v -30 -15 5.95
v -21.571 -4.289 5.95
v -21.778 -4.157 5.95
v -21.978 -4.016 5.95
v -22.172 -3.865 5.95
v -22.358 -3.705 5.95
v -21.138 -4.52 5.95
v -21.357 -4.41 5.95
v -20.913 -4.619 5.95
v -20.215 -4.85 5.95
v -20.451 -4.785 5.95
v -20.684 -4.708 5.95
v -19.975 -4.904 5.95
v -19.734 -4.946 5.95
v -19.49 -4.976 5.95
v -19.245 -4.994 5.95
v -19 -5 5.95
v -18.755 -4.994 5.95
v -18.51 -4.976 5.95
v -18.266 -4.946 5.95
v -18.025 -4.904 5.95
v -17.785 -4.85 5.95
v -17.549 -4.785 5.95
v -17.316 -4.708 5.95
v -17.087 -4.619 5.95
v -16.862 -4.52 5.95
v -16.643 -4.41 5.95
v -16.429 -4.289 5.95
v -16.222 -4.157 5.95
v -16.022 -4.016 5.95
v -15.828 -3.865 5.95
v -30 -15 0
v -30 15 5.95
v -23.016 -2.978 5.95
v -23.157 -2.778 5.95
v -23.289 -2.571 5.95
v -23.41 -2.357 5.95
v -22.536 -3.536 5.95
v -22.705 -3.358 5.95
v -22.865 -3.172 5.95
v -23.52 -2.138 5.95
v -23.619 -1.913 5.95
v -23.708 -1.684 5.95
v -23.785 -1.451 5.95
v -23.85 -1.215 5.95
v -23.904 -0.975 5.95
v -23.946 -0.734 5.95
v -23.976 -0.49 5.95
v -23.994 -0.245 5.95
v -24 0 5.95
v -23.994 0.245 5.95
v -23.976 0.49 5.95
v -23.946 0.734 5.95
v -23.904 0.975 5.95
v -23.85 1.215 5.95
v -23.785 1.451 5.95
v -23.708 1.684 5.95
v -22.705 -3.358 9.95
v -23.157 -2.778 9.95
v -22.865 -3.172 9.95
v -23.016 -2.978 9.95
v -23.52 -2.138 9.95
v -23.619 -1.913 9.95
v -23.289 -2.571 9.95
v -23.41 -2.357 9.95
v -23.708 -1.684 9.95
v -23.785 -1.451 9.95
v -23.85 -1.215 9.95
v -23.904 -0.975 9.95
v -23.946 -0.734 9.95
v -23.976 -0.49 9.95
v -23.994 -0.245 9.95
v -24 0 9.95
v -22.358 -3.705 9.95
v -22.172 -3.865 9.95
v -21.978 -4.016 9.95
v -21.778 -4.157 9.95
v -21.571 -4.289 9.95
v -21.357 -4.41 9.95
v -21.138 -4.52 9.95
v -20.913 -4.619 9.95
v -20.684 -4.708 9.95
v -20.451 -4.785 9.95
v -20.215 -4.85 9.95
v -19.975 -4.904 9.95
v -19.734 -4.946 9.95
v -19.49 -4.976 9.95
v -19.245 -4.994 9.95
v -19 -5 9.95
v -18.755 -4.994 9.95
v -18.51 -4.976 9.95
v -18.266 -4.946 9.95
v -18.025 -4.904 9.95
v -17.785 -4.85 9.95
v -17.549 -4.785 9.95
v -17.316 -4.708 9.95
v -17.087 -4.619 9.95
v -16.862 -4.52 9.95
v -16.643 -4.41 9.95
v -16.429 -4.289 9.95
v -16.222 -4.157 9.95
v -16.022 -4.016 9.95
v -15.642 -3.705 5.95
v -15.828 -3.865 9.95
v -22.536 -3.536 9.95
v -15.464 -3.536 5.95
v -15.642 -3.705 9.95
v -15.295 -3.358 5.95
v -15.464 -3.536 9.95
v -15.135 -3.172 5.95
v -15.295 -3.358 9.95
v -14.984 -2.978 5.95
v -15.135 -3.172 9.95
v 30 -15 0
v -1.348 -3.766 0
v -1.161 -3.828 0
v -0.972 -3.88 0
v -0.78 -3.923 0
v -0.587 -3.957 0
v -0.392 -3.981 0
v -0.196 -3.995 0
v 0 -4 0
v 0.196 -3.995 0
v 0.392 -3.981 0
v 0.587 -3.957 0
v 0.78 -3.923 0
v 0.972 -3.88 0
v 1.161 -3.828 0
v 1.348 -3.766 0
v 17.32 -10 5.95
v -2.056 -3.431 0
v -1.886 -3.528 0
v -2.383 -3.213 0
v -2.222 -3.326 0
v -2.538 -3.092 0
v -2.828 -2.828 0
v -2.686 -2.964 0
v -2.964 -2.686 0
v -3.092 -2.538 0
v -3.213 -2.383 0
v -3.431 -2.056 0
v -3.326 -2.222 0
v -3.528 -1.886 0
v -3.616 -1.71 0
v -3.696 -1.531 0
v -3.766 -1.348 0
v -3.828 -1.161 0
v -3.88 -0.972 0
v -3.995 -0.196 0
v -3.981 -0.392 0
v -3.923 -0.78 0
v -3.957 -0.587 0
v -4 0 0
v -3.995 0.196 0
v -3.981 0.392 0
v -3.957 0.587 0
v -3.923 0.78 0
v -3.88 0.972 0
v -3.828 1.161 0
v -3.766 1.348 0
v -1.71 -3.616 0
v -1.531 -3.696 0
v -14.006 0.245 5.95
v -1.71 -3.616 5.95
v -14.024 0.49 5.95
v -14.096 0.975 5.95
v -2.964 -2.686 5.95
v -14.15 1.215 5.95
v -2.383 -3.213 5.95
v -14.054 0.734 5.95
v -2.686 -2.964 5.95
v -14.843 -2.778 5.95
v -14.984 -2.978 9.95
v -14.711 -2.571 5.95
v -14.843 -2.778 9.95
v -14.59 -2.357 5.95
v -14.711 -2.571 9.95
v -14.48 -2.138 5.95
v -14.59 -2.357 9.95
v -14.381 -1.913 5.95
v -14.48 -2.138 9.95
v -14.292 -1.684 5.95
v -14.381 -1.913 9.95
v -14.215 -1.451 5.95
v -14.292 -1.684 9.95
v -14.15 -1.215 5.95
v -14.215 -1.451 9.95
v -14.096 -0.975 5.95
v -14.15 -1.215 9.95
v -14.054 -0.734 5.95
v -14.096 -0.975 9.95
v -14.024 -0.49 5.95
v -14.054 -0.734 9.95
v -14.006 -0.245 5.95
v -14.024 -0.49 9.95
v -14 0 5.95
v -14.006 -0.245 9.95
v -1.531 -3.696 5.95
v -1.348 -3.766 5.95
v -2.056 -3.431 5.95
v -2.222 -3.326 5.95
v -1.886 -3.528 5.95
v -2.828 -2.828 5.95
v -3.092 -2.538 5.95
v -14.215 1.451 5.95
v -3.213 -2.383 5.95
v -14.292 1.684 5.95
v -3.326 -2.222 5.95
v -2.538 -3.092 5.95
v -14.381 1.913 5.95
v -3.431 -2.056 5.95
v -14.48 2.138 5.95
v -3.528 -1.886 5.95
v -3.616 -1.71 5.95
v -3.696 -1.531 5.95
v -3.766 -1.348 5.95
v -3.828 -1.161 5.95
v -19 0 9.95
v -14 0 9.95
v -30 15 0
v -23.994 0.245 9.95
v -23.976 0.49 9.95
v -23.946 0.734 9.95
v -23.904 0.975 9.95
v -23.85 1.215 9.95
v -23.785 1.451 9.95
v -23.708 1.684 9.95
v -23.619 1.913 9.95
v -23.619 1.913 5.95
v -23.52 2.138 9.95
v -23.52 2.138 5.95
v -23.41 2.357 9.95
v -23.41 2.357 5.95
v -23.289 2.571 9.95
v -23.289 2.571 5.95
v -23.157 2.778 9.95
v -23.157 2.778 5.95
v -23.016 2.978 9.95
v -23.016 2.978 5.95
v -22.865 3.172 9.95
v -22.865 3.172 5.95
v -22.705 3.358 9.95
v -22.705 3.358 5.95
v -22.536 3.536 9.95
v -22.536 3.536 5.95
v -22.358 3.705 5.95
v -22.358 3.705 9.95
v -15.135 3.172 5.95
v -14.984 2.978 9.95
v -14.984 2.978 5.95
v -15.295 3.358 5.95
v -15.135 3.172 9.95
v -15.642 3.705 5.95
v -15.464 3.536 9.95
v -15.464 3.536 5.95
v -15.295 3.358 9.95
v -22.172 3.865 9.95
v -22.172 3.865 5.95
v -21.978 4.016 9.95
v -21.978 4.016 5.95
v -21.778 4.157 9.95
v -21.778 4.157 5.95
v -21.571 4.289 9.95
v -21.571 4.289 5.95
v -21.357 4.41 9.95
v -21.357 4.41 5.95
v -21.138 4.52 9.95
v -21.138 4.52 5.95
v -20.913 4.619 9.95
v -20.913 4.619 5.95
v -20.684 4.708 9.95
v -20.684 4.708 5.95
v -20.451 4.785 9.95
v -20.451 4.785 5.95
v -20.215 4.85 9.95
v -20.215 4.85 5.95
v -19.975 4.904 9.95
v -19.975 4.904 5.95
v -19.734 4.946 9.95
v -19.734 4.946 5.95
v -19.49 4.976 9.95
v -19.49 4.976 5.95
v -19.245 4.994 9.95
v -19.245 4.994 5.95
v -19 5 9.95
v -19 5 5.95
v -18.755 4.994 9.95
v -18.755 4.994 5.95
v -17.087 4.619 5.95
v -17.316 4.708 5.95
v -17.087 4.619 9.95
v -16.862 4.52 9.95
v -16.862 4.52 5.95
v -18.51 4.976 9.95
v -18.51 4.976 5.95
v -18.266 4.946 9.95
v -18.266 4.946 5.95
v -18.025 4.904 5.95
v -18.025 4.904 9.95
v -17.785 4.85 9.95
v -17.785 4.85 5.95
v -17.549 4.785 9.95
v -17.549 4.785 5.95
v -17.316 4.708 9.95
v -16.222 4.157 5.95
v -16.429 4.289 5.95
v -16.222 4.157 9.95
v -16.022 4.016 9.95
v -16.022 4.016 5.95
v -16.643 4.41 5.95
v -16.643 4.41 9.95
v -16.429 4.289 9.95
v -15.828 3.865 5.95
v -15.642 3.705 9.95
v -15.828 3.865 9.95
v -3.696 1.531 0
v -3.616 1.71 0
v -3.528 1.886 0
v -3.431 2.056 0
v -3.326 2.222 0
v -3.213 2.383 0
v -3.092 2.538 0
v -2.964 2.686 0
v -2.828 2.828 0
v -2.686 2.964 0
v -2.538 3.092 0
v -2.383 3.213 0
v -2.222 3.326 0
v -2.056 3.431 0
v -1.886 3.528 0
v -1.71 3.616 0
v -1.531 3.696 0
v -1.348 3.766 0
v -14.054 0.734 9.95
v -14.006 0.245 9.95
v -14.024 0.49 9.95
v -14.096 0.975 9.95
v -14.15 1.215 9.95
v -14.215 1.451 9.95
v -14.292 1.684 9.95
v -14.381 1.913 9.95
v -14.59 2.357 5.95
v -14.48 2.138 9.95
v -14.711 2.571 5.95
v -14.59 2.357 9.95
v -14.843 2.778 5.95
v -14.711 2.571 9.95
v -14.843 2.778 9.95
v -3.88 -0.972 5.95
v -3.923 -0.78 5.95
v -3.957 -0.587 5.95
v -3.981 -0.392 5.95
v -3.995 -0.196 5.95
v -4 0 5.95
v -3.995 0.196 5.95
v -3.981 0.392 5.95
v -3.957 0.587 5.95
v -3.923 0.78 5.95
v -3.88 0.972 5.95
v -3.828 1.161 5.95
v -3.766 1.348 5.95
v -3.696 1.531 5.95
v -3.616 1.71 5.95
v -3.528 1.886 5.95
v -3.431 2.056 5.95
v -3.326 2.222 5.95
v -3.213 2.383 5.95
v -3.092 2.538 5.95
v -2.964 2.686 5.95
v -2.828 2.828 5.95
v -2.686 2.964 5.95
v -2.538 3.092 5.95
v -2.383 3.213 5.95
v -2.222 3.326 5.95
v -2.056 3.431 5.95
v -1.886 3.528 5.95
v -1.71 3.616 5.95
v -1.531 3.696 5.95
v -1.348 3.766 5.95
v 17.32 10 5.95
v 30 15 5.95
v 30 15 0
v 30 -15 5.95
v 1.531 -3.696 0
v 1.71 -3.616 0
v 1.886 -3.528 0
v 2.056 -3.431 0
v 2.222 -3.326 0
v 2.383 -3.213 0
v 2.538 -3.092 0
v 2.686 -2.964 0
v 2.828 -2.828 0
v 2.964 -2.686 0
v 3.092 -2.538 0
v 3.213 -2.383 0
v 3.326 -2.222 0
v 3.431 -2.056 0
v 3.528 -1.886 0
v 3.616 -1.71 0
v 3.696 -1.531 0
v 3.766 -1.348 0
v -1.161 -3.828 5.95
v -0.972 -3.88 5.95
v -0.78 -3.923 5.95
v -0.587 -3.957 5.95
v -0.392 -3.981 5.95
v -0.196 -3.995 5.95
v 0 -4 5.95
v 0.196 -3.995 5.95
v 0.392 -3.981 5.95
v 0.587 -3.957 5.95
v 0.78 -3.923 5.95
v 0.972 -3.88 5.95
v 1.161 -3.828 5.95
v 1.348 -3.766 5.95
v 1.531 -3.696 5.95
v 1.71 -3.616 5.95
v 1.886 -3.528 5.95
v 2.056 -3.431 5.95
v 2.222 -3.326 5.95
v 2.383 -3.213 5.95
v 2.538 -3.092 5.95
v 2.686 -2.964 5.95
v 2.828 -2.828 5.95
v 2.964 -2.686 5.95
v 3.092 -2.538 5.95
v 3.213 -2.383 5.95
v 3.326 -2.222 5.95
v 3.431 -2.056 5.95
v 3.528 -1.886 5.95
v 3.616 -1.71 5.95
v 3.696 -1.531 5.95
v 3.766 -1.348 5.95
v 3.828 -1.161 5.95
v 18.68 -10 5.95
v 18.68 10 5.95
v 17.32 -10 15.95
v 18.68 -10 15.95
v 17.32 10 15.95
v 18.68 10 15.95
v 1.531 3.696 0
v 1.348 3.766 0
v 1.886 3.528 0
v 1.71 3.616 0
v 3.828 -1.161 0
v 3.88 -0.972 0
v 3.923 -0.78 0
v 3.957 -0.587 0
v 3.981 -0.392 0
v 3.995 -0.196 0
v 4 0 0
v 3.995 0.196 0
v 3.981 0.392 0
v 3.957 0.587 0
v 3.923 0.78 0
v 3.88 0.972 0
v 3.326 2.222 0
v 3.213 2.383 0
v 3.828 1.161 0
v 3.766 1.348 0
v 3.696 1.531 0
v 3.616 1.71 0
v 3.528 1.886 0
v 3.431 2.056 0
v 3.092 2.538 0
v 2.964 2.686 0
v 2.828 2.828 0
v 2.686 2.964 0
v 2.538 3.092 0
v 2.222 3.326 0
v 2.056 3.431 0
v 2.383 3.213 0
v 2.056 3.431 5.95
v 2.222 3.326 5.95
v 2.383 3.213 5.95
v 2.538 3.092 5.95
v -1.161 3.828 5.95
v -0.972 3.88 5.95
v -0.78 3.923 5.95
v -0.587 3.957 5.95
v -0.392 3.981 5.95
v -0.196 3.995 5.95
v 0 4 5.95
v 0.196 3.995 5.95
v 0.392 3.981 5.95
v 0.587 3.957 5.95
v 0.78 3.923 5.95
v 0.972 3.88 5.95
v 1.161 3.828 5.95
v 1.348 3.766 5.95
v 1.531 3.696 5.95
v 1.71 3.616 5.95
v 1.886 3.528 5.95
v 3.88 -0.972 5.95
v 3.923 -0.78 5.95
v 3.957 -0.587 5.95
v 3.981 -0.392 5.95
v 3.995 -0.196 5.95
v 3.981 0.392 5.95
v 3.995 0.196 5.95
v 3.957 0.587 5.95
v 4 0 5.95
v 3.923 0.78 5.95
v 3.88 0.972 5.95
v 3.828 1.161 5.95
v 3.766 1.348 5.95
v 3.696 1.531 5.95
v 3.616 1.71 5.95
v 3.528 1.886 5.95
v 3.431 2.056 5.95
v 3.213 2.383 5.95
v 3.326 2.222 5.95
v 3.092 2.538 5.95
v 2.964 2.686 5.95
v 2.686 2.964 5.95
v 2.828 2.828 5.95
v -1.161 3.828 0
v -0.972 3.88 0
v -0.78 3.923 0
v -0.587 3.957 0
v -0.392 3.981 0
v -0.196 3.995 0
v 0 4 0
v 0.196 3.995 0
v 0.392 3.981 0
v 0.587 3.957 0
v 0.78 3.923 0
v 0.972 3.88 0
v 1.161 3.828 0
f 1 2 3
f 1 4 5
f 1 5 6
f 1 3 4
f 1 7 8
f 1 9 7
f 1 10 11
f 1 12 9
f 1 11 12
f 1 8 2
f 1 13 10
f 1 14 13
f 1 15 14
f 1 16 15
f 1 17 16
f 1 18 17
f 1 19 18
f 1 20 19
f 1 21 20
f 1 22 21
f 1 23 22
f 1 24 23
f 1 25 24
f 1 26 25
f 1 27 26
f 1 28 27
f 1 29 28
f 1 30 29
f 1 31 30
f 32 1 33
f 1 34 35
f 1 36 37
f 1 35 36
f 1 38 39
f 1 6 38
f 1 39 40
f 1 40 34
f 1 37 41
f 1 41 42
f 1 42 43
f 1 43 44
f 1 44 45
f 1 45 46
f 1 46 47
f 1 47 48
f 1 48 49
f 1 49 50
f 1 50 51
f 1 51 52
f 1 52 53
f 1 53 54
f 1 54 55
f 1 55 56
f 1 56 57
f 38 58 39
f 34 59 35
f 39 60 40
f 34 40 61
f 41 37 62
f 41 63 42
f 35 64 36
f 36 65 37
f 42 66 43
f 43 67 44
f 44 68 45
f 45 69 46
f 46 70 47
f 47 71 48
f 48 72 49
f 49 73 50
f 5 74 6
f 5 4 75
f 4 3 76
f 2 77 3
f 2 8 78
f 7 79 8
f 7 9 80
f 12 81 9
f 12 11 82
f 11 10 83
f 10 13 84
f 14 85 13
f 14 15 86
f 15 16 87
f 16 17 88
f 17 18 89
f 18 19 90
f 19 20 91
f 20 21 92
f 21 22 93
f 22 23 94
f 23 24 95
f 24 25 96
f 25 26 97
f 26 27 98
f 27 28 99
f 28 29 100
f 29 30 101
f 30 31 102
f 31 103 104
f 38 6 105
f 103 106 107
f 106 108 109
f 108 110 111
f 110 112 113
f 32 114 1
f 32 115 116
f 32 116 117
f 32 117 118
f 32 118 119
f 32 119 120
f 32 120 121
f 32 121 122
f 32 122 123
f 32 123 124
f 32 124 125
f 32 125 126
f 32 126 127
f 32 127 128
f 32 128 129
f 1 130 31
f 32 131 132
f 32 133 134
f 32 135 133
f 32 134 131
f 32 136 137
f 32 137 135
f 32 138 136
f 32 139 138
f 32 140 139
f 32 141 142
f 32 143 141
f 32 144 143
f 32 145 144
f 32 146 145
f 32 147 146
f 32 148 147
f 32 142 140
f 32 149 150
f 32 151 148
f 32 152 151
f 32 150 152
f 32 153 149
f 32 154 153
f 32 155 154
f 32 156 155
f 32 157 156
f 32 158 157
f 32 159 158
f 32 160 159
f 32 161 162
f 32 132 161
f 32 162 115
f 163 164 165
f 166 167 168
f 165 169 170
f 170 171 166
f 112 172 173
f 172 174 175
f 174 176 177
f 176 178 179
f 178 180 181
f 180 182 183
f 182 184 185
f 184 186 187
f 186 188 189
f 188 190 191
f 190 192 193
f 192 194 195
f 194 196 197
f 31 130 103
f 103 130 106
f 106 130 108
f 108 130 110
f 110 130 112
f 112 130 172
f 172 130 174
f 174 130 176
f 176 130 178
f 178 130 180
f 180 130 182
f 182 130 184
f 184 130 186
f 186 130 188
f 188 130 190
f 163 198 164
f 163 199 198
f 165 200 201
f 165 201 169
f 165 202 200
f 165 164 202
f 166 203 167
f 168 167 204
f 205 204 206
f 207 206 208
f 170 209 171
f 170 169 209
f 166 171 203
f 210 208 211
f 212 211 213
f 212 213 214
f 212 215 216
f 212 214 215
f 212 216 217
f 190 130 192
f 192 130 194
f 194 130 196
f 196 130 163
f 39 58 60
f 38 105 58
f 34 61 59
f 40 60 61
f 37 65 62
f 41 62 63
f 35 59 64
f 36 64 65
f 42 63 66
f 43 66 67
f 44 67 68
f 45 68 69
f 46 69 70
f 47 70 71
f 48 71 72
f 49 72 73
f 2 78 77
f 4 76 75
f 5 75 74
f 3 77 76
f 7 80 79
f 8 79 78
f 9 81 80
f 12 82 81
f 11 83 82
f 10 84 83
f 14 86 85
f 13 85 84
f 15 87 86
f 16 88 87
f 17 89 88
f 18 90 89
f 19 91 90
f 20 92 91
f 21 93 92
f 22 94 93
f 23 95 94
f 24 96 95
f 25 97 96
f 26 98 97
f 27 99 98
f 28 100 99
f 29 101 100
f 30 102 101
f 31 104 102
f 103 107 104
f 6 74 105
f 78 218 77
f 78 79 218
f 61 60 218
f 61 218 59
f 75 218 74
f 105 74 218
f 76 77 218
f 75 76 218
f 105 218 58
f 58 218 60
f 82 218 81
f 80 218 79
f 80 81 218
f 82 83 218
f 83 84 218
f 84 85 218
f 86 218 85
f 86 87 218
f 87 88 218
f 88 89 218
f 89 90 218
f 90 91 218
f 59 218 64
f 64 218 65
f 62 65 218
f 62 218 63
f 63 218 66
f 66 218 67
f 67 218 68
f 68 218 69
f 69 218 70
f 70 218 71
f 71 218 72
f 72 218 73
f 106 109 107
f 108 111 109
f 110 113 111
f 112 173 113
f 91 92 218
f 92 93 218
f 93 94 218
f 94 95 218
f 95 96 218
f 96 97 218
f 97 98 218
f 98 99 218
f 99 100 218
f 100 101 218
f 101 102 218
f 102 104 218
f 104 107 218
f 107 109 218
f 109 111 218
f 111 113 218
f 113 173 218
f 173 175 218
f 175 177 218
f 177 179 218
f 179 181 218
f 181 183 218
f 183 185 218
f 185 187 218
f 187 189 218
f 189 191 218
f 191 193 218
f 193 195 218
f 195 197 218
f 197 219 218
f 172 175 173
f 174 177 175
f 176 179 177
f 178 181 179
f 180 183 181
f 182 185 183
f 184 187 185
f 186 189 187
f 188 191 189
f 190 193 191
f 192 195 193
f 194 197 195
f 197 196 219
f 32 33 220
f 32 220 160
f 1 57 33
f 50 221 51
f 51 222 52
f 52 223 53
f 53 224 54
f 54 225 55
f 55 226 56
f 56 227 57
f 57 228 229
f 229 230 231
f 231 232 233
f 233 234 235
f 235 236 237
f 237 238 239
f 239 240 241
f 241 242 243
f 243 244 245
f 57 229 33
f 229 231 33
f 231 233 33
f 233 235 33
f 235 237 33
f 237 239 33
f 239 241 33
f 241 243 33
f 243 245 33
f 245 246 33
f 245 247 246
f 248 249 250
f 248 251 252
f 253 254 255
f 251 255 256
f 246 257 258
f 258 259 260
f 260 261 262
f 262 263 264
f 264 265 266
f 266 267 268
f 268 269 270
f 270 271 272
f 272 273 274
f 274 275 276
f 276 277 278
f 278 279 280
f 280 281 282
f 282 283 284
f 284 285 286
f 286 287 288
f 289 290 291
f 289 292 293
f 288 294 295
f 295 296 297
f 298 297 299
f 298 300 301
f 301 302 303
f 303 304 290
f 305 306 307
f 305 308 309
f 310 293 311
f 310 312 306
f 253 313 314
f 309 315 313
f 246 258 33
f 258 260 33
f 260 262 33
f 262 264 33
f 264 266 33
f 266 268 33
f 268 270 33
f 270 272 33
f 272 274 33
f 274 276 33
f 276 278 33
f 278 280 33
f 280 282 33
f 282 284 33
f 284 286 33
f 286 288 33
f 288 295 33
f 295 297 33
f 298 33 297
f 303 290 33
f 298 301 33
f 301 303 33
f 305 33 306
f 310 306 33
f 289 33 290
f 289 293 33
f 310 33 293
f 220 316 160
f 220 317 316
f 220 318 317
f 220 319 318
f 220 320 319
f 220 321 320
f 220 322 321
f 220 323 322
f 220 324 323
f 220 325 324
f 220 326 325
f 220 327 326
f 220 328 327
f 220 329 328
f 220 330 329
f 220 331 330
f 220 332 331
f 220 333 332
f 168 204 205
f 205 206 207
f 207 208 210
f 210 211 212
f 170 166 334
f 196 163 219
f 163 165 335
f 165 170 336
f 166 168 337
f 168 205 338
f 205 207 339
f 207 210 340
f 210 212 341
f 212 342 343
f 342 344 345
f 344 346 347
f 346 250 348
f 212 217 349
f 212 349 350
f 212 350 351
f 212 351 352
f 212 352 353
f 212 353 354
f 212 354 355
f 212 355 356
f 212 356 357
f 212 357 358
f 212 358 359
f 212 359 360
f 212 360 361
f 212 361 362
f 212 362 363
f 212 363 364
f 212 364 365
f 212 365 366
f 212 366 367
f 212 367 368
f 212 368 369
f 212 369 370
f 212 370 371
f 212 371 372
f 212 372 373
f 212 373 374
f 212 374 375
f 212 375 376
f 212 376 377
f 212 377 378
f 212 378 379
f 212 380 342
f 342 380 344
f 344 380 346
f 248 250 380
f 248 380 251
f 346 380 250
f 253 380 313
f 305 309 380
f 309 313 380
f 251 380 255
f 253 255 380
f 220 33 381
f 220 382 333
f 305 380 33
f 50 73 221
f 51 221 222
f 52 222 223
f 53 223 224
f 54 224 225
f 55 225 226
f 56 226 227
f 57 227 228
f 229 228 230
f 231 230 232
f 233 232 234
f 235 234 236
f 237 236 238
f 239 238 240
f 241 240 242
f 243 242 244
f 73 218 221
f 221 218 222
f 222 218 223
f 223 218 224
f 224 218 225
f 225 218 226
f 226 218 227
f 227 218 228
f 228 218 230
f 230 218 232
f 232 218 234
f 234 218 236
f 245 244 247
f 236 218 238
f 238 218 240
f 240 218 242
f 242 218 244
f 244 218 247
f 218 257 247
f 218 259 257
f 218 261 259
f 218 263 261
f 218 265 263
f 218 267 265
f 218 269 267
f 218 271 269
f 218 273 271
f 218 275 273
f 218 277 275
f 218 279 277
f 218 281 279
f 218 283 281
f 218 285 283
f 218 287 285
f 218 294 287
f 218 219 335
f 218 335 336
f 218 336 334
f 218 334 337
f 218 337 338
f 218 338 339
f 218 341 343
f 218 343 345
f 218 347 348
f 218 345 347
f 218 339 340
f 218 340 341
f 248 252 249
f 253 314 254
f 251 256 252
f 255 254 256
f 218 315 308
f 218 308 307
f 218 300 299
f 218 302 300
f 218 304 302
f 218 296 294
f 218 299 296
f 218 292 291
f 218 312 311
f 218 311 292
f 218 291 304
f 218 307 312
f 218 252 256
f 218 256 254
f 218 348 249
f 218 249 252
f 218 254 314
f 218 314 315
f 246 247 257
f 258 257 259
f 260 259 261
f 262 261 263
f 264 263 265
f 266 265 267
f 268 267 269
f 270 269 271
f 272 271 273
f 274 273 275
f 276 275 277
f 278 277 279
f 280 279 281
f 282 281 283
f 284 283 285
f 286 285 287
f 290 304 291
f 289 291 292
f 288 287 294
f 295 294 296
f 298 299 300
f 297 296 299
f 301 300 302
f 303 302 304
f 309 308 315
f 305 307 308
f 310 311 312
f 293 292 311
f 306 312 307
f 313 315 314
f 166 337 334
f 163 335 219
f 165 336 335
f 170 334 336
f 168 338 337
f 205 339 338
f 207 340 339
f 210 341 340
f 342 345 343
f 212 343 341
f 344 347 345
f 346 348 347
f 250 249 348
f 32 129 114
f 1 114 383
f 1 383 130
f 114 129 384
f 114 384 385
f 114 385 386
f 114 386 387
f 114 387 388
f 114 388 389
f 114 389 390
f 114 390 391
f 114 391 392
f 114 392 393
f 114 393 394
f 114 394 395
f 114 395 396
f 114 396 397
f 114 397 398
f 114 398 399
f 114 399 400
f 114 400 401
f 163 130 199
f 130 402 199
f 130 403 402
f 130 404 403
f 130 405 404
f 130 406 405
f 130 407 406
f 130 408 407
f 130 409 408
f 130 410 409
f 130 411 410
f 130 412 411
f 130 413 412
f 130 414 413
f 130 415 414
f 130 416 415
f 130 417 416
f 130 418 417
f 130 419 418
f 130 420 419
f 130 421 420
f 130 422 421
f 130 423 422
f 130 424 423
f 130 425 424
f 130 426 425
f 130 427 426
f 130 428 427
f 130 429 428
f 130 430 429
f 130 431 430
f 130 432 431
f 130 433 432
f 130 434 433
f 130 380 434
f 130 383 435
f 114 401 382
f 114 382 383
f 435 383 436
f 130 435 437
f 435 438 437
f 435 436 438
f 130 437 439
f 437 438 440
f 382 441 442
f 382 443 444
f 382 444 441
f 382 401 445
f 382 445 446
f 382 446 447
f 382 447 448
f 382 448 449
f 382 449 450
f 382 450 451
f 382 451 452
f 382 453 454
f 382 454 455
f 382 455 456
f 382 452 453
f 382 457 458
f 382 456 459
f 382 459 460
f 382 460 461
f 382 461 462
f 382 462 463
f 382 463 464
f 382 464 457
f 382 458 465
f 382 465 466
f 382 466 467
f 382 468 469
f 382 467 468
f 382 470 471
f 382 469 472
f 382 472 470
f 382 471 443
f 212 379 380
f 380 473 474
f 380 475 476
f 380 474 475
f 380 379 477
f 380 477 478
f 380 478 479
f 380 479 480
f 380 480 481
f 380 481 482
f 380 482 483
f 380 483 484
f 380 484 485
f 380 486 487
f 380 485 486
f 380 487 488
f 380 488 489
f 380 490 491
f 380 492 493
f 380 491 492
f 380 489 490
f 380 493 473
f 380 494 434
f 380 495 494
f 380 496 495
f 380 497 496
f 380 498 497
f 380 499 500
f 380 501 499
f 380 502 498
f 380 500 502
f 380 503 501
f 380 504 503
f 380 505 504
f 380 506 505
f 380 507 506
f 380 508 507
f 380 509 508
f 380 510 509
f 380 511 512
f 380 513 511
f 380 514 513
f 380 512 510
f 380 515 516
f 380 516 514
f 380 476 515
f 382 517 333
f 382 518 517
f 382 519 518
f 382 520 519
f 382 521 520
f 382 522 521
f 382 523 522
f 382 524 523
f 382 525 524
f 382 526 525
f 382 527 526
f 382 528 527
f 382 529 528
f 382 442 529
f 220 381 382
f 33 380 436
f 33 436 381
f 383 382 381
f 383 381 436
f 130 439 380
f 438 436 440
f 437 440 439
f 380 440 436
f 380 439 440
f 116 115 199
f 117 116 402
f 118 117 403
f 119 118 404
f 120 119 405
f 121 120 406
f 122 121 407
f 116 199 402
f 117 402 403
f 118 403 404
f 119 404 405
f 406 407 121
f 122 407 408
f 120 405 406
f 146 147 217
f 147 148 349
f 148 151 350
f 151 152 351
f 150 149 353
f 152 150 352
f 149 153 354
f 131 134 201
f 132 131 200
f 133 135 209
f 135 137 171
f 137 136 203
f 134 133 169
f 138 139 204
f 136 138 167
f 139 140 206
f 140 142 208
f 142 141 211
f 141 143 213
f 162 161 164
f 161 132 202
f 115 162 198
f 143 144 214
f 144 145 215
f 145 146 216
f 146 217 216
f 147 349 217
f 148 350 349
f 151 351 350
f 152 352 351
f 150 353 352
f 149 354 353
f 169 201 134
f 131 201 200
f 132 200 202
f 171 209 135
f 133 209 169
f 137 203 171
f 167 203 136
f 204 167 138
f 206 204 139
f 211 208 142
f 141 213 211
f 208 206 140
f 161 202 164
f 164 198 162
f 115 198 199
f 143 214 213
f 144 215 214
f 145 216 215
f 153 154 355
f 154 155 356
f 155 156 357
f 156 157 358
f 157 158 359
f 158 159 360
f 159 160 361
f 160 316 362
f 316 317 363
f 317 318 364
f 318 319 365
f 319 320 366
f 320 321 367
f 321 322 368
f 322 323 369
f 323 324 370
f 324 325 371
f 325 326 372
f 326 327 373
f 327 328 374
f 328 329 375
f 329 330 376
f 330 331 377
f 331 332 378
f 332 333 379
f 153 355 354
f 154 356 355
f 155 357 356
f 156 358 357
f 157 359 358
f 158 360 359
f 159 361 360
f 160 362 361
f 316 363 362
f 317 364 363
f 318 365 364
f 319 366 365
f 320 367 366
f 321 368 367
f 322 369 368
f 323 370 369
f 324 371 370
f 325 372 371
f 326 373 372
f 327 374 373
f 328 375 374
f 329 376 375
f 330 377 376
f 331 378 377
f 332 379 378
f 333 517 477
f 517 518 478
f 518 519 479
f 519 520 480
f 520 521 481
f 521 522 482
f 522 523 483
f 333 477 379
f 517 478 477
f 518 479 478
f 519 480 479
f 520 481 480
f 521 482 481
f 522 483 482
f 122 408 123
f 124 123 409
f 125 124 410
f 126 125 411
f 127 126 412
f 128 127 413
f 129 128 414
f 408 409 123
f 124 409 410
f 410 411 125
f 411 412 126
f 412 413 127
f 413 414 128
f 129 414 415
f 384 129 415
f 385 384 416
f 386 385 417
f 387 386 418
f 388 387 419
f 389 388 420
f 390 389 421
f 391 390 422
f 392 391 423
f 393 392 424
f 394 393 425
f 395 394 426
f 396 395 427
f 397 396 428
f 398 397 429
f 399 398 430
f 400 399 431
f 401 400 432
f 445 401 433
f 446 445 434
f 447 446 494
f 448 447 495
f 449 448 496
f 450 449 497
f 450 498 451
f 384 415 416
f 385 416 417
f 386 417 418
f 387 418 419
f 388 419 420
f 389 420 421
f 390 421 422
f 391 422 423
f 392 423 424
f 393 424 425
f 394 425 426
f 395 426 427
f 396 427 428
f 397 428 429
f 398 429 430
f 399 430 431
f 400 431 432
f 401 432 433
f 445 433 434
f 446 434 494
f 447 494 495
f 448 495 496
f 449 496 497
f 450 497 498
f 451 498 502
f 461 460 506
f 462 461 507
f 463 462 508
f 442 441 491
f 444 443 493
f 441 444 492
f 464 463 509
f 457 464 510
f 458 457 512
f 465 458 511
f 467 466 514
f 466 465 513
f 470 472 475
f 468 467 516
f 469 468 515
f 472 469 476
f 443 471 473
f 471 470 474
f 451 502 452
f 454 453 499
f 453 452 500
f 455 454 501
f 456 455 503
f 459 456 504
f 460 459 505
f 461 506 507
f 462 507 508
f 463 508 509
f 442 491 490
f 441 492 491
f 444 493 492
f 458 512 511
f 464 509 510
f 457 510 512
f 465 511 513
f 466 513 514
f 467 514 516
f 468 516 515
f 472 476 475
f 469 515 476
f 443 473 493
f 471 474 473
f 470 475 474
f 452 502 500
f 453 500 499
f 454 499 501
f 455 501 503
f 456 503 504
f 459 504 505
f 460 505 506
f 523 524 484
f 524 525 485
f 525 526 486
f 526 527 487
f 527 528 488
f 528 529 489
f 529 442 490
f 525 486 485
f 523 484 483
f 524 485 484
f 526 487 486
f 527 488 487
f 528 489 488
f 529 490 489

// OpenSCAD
// Extrusion verification coupon — end-to-end check at profile speeds.
// Features and what they read (see docs/verification/README.md):
//   rib   1.36 mm = exactly 2 beads at w = 0.68  -> flow + two-bead bond
//   plate 60.00 x 30.00                           -> flow + dimensional
//   boss  D10.00 / hole D8.00                     -> informational
// Every Z lands on the 0.2 + n*0.25 layer grid so nominal = printed:
//   plate top  5.95  (n = 23)
//   boss  top  9.95  (n = 39)
//   rib   top 15.95  (n = 63)
// Render: openscad -o extrusion_coupon.stl extrusion_coupon.scad
$fn = 128;

plate_h = 5.95;

difference() {
    union() {
        // plate, centered on origin
        translate([-30, -15, 0]) cube([60, 30, plate_h]);
        // boss D10 x 4
        translate([-19, 0, plate_h]) cylinder(h = 4.0, d = 10.0);
        // rib: 1.36 wide, 20 long, 10 tall
        translate([18 - 1.36/2, -10, plate_h]) cube([1.36, 20, 10.0]);
    }
    // through hole D8
    translate([0, 0, -1]) cylinder(h = plate_h + 2, d = 8.0);
}
